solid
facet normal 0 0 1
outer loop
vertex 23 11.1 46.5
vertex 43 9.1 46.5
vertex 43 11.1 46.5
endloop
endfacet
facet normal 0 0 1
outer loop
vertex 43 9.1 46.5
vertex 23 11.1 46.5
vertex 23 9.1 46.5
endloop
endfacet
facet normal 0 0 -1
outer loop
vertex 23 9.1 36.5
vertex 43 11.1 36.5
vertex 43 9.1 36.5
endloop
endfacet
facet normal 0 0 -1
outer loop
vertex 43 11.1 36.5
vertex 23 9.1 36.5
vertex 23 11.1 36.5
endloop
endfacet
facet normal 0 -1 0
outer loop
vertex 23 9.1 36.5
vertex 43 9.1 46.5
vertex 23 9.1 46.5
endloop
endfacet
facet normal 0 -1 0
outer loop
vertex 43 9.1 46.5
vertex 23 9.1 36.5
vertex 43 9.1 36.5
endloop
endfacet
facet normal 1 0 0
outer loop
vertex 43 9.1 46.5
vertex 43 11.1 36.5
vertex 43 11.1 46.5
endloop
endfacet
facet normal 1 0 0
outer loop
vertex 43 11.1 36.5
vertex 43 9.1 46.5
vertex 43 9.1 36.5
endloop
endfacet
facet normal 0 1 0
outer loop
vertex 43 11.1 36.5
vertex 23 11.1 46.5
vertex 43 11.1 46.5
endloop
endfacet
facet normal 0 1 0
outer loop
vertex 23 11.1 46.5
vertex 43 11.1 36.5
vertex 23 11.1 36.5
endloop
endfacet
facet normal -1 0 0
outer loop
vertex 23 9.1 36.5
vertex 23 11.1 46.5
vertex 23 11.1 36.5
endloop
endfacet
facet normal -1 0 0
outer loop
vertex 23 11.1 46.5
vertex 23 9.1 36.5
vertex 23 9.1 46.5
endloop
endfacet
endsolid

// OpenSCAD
// file: D:/Projects/assembly-workshop/outputs/Screen_Pi_Hue_SCR5-H8_2026-10-31/checks/geometry.scad
// SCR5-G; mm; FRONT view: X right, Z up, Y into rack. Glass/plate front Y=0.
// Measured values: work/screen-5in/Dimensions.md. Physical fit/strength UNKNOWN.
part="plate";
DROP=0.45; // coupon winner can be substituted here; all three pins use this DROP
LIP=0.8; LIP_ON=true;
LIP_EDGES=[true,true,false,false]; // left,right,bottom,top; Brian: side lips only, cosmetic
FRAME_STEP=1.5; // measured glass-edge inset to metal LCD frame, left/right only
SHIM=0; // moves rear frame seat and plate-boss mating face back
$fn=48;
GCX=33; GCZ=41.5; PW=252; PH=88.8; PT=4;
GW=120.7; GH=77.2; CLEAR=0.2; WW=GW+2*CLEAR; WH=GH+2*CLEAR;
SEAT=13.3+SHIM; FT=3;
SO=[56.45,34]; BTN_X=[45.5,35.5,25.5];
PCB_TOP=38; GAP=0.10; LEAF_T=0.8;
HOLE=[3.4,40.3,44.7];
BX=[GCX-68,GCX+68]; BZ=[10,72];
// DSI connector X extent is unmeasured: conservative assumed 8 mm inward from PCB edge.
DSI=[GCX-60.5,9.1,GCZ-38+30,8,5.25,21];
module xz(y,d){translate([0,y+d,0])rotate([90,0,0])linear_extrude(d)children();}
// rr/rack_slots copied from SCR5-F; same exact slot centres, outline shifted -0.05 Z to centre 44.4.
module rr(w,h,r){hull()for(x=[-w/2+r,w/2-r],z=[-h/2+r,h/2-r])translate([x,z])circle(r=r);}
module rack_slots(){for(x=[-118.2625,118.2625],z=[6.323,38.127,50.773,82.577])translate([x,z])hull()for(dx=[-1.5,1.5])translate([dx,0])circle(d=7);}
module cyl_y(x,y,z,d,h){translate([x,y,z])rotate([-90,0,0])cylinder(d=d,h=h);}
module window_cut(){
  xz(-0.02,4.04)translate([GCX,GCZ])square([WW,WH],center=true);
  // 0.3 x 45-degree chamfer, square corners, front only.
  translate([GCX,0.3,GCZ])rotate([90,0,0])
    linear_extrude(height=0.3,scale=[(WW+0.6)/WW,(WH+0.6)/WH])square([WW,WH],center=true);
}
module lips(){
  // Cosmetic side ledges only; rear frame/standoffs set depth and retain the screen.
  if(LIP_ON)for(i=[0:3])if(LIP_EDGES[i]){
    if(i<2)translate([GCX+(i==0?-WW/2:WW/2-LIP),2.5,GCZ-GH/2+4])cube([LIP,0.8,GH-8]);
    else translate([GCX-GW/2+4,2.5,GCZ+(i==2?-WH/2:WH/2-LIP)])cube([GW-8,0.8,LIP]);
  }
}
// Leaf/nub/bump geometry copied from SCR5-WP-A, translated to this glass centre.
module leaves(){for(x=BTN_X)translate([GCX+x-1.5,0,GCZ]){
  translate([0,0,PCB_TOP+GAP+0.9+0.1])cube([3,11.8,LEAF_T]);
  translate([0,10.2,PCB_TOP+GAP])cube([3,1.4,1.0+LEAF_T/2]);
  translate([0,10.4,PCB_TOP+GAP+1.0+LEAF_T])cube([3,1.0,0.9]);
}}
module plate(){difference(){union(){
  difference(){xz(0,PT)translate([0,PH/2])rr(PW,PH,2.5);window_cut();}
  for(x=BX,z=BZ)cyl_y(x,3.9,z,8,SEAT-3.9);
  leaves(); lips();
 }
 xz(-0.02,4.04)rack_slots();
 for(x=BTN_X)translate([GCX+x-HOLE[0]/2,-0.02,GCZ+HOLE[1]])cube([HOLE[0],SEAT+FT+0.04,HOLE[2]-HOLE[1]]);
 // Printed-in screw pilots (no heat-set OD assumption): nominal M2.5, fit UNKNOWN.
 for(x=BX,z=BZ)cyl_y(x,SEAT-6,z,2.1,6.02);
 // Rear engraving, 0.5 deep, left field.
 xz(3.5,0.52)translate([-75,40])mirror([1,0])text("SCR5-G",size=6,halign="center",font="Liberation Sans:style=Bold");
}}
module frame_blank(){
  // C-shaped perimeter; no material across the board centre / touch FPC.
  xz(SEAT,FT)translate([GCX,GCZ])difference(){square([132,76],center=true);square([116,60],center=true);}
  for(sx=[-1,1],sz=[-1,1])cyl_y(GCX+sx*SO[0],SEAT,GCZ+sz*SO[1],9,FT);
  for(x=BX,z=BZ)hull(){cyl_y(x,SEAT,z,8,FT);cyl_y(GCX+(x<GCX?-62:62),SEAT,z,8,FT);}
}
module dsi_keepout(){translate([DSI[0]-3,DSI[1]-3,DSI[2]-3])cube([DSI[3]+6,DSI[4]+6,DSI[5]+6]);}
module ribbon_route(){
  // Open left/up corridor 18 mm wide; extends past top of plate.
  translate([GCX-84,6.1,GCZ-11])cube([18,24,65]);
  translate([GCX-84,6.1,GCZ-11])cube([32,24,27]);
}
module frame(){difference(){frame_blank();dsi_keepout();ribbon_route();
 for(sx=[-1,1],sz=[-1,1])cyl_y(GCX+sx*SO[0],SEAT-0.02,GCZ+sz*SO[1],2.8,FT+0.04);
 for(x=BX,z=BZ)cyl_y(x,SEAT-0.02,z,2.8,FT+0.04);
}}
// Pin polygon/cap/notch/dot design copied unchanged from SCR5-WP-A.
module pin(d,dots){s=2*d+0.5;difference(){union(){
 translate([-1.5,0,0])rotate([90,0,90])linear_extrude(3)polygon([
 [-s-0.02,40.5],[10.2,40.5],[10.2,41.0],[11.5,41.0],[11.5+2*d,41.0-d],[15,41.0-d],[15,44.5],[-s-0.02,44.5]]);
 translate([-2.5,-s-1.5,39.6])cube([5,1.5,5.8]);
 }for(i=[0:dots-1])translate([(i-(dots-1)/2)*1.4,-s-1.5-0.01,43.5])rotate([-90,0,0])cylinder(d=0.9,h=0.4);}}
module placed_pin(i){translate([GCX+BTN_X[i],0,GCZ])pin(DROP,i+1);}
// Measured layers: cover glass 0.9 + second glass 1.6, metal frame 3.0,
// open gap 2.0, PCB 1.6. Metal frame inset ~1.5 at LEFT/RIGHT only.
// PCB centred under glass and full metal-frame top/bottom extent remain UNKNOWN.
module glass(){translate([GCX-GW/2,0,GCZ-GH/2])cube([GW,2.5,GH]);}
module lcd(){
  translate([GCX-GW/2+FRAME_STEP,2.5,GCZ-GH/2])cube([GW-2*FRAME_STEP,3.0,GH]);
}
module pcb(){translate([GCX-60.5,7.5,GCZ-38])cube([121,1.6,76]);}
module standoffs(){for(sx=[-1,1],sz=[-1,1])difference(){cyl_y(GCX+sx*SO[0],9.1,GCZ+sz*SO[1],5.5,4.2);cyl_y(GCX+sx*SO[0],9.08,GCZ+sz*SO[1],2.5,4.24);}}
module buttons(){for(x=BTN_X){
 translate([GCX+x-3.5,9.1,GCZ+38-3.4])cube([7,3.6,2.4]);
 translate([GCX+x-1.5,9.1,GCZ+37])cube([3,3.6,1]);
}}
module dsi(){translate([DSI[0],DSI[1],DSI[2]])cube([DSI[3],DSI[4],DSI[5]]);}
module touch(){translate([GCX-10,9.1,GCZ-5])cube([20,2,10]);} // lateral extent unmeasured
module dummy(){glass();lcd();pcb();standoffs();buttons();dsi();touch();}
module assembly(){color("gray")plate();color("orange")frame();for(i=[0:2])color("cyan")placed_pin(i);color([0.2,0.3,0.4,0.4])dummy();}
// main file
include <D:/Projects/assembly-workshop/outputs/Screen_Pi_Hue_SCR5-H8_2026-10-31/checks/geometry.scad>
touch();
